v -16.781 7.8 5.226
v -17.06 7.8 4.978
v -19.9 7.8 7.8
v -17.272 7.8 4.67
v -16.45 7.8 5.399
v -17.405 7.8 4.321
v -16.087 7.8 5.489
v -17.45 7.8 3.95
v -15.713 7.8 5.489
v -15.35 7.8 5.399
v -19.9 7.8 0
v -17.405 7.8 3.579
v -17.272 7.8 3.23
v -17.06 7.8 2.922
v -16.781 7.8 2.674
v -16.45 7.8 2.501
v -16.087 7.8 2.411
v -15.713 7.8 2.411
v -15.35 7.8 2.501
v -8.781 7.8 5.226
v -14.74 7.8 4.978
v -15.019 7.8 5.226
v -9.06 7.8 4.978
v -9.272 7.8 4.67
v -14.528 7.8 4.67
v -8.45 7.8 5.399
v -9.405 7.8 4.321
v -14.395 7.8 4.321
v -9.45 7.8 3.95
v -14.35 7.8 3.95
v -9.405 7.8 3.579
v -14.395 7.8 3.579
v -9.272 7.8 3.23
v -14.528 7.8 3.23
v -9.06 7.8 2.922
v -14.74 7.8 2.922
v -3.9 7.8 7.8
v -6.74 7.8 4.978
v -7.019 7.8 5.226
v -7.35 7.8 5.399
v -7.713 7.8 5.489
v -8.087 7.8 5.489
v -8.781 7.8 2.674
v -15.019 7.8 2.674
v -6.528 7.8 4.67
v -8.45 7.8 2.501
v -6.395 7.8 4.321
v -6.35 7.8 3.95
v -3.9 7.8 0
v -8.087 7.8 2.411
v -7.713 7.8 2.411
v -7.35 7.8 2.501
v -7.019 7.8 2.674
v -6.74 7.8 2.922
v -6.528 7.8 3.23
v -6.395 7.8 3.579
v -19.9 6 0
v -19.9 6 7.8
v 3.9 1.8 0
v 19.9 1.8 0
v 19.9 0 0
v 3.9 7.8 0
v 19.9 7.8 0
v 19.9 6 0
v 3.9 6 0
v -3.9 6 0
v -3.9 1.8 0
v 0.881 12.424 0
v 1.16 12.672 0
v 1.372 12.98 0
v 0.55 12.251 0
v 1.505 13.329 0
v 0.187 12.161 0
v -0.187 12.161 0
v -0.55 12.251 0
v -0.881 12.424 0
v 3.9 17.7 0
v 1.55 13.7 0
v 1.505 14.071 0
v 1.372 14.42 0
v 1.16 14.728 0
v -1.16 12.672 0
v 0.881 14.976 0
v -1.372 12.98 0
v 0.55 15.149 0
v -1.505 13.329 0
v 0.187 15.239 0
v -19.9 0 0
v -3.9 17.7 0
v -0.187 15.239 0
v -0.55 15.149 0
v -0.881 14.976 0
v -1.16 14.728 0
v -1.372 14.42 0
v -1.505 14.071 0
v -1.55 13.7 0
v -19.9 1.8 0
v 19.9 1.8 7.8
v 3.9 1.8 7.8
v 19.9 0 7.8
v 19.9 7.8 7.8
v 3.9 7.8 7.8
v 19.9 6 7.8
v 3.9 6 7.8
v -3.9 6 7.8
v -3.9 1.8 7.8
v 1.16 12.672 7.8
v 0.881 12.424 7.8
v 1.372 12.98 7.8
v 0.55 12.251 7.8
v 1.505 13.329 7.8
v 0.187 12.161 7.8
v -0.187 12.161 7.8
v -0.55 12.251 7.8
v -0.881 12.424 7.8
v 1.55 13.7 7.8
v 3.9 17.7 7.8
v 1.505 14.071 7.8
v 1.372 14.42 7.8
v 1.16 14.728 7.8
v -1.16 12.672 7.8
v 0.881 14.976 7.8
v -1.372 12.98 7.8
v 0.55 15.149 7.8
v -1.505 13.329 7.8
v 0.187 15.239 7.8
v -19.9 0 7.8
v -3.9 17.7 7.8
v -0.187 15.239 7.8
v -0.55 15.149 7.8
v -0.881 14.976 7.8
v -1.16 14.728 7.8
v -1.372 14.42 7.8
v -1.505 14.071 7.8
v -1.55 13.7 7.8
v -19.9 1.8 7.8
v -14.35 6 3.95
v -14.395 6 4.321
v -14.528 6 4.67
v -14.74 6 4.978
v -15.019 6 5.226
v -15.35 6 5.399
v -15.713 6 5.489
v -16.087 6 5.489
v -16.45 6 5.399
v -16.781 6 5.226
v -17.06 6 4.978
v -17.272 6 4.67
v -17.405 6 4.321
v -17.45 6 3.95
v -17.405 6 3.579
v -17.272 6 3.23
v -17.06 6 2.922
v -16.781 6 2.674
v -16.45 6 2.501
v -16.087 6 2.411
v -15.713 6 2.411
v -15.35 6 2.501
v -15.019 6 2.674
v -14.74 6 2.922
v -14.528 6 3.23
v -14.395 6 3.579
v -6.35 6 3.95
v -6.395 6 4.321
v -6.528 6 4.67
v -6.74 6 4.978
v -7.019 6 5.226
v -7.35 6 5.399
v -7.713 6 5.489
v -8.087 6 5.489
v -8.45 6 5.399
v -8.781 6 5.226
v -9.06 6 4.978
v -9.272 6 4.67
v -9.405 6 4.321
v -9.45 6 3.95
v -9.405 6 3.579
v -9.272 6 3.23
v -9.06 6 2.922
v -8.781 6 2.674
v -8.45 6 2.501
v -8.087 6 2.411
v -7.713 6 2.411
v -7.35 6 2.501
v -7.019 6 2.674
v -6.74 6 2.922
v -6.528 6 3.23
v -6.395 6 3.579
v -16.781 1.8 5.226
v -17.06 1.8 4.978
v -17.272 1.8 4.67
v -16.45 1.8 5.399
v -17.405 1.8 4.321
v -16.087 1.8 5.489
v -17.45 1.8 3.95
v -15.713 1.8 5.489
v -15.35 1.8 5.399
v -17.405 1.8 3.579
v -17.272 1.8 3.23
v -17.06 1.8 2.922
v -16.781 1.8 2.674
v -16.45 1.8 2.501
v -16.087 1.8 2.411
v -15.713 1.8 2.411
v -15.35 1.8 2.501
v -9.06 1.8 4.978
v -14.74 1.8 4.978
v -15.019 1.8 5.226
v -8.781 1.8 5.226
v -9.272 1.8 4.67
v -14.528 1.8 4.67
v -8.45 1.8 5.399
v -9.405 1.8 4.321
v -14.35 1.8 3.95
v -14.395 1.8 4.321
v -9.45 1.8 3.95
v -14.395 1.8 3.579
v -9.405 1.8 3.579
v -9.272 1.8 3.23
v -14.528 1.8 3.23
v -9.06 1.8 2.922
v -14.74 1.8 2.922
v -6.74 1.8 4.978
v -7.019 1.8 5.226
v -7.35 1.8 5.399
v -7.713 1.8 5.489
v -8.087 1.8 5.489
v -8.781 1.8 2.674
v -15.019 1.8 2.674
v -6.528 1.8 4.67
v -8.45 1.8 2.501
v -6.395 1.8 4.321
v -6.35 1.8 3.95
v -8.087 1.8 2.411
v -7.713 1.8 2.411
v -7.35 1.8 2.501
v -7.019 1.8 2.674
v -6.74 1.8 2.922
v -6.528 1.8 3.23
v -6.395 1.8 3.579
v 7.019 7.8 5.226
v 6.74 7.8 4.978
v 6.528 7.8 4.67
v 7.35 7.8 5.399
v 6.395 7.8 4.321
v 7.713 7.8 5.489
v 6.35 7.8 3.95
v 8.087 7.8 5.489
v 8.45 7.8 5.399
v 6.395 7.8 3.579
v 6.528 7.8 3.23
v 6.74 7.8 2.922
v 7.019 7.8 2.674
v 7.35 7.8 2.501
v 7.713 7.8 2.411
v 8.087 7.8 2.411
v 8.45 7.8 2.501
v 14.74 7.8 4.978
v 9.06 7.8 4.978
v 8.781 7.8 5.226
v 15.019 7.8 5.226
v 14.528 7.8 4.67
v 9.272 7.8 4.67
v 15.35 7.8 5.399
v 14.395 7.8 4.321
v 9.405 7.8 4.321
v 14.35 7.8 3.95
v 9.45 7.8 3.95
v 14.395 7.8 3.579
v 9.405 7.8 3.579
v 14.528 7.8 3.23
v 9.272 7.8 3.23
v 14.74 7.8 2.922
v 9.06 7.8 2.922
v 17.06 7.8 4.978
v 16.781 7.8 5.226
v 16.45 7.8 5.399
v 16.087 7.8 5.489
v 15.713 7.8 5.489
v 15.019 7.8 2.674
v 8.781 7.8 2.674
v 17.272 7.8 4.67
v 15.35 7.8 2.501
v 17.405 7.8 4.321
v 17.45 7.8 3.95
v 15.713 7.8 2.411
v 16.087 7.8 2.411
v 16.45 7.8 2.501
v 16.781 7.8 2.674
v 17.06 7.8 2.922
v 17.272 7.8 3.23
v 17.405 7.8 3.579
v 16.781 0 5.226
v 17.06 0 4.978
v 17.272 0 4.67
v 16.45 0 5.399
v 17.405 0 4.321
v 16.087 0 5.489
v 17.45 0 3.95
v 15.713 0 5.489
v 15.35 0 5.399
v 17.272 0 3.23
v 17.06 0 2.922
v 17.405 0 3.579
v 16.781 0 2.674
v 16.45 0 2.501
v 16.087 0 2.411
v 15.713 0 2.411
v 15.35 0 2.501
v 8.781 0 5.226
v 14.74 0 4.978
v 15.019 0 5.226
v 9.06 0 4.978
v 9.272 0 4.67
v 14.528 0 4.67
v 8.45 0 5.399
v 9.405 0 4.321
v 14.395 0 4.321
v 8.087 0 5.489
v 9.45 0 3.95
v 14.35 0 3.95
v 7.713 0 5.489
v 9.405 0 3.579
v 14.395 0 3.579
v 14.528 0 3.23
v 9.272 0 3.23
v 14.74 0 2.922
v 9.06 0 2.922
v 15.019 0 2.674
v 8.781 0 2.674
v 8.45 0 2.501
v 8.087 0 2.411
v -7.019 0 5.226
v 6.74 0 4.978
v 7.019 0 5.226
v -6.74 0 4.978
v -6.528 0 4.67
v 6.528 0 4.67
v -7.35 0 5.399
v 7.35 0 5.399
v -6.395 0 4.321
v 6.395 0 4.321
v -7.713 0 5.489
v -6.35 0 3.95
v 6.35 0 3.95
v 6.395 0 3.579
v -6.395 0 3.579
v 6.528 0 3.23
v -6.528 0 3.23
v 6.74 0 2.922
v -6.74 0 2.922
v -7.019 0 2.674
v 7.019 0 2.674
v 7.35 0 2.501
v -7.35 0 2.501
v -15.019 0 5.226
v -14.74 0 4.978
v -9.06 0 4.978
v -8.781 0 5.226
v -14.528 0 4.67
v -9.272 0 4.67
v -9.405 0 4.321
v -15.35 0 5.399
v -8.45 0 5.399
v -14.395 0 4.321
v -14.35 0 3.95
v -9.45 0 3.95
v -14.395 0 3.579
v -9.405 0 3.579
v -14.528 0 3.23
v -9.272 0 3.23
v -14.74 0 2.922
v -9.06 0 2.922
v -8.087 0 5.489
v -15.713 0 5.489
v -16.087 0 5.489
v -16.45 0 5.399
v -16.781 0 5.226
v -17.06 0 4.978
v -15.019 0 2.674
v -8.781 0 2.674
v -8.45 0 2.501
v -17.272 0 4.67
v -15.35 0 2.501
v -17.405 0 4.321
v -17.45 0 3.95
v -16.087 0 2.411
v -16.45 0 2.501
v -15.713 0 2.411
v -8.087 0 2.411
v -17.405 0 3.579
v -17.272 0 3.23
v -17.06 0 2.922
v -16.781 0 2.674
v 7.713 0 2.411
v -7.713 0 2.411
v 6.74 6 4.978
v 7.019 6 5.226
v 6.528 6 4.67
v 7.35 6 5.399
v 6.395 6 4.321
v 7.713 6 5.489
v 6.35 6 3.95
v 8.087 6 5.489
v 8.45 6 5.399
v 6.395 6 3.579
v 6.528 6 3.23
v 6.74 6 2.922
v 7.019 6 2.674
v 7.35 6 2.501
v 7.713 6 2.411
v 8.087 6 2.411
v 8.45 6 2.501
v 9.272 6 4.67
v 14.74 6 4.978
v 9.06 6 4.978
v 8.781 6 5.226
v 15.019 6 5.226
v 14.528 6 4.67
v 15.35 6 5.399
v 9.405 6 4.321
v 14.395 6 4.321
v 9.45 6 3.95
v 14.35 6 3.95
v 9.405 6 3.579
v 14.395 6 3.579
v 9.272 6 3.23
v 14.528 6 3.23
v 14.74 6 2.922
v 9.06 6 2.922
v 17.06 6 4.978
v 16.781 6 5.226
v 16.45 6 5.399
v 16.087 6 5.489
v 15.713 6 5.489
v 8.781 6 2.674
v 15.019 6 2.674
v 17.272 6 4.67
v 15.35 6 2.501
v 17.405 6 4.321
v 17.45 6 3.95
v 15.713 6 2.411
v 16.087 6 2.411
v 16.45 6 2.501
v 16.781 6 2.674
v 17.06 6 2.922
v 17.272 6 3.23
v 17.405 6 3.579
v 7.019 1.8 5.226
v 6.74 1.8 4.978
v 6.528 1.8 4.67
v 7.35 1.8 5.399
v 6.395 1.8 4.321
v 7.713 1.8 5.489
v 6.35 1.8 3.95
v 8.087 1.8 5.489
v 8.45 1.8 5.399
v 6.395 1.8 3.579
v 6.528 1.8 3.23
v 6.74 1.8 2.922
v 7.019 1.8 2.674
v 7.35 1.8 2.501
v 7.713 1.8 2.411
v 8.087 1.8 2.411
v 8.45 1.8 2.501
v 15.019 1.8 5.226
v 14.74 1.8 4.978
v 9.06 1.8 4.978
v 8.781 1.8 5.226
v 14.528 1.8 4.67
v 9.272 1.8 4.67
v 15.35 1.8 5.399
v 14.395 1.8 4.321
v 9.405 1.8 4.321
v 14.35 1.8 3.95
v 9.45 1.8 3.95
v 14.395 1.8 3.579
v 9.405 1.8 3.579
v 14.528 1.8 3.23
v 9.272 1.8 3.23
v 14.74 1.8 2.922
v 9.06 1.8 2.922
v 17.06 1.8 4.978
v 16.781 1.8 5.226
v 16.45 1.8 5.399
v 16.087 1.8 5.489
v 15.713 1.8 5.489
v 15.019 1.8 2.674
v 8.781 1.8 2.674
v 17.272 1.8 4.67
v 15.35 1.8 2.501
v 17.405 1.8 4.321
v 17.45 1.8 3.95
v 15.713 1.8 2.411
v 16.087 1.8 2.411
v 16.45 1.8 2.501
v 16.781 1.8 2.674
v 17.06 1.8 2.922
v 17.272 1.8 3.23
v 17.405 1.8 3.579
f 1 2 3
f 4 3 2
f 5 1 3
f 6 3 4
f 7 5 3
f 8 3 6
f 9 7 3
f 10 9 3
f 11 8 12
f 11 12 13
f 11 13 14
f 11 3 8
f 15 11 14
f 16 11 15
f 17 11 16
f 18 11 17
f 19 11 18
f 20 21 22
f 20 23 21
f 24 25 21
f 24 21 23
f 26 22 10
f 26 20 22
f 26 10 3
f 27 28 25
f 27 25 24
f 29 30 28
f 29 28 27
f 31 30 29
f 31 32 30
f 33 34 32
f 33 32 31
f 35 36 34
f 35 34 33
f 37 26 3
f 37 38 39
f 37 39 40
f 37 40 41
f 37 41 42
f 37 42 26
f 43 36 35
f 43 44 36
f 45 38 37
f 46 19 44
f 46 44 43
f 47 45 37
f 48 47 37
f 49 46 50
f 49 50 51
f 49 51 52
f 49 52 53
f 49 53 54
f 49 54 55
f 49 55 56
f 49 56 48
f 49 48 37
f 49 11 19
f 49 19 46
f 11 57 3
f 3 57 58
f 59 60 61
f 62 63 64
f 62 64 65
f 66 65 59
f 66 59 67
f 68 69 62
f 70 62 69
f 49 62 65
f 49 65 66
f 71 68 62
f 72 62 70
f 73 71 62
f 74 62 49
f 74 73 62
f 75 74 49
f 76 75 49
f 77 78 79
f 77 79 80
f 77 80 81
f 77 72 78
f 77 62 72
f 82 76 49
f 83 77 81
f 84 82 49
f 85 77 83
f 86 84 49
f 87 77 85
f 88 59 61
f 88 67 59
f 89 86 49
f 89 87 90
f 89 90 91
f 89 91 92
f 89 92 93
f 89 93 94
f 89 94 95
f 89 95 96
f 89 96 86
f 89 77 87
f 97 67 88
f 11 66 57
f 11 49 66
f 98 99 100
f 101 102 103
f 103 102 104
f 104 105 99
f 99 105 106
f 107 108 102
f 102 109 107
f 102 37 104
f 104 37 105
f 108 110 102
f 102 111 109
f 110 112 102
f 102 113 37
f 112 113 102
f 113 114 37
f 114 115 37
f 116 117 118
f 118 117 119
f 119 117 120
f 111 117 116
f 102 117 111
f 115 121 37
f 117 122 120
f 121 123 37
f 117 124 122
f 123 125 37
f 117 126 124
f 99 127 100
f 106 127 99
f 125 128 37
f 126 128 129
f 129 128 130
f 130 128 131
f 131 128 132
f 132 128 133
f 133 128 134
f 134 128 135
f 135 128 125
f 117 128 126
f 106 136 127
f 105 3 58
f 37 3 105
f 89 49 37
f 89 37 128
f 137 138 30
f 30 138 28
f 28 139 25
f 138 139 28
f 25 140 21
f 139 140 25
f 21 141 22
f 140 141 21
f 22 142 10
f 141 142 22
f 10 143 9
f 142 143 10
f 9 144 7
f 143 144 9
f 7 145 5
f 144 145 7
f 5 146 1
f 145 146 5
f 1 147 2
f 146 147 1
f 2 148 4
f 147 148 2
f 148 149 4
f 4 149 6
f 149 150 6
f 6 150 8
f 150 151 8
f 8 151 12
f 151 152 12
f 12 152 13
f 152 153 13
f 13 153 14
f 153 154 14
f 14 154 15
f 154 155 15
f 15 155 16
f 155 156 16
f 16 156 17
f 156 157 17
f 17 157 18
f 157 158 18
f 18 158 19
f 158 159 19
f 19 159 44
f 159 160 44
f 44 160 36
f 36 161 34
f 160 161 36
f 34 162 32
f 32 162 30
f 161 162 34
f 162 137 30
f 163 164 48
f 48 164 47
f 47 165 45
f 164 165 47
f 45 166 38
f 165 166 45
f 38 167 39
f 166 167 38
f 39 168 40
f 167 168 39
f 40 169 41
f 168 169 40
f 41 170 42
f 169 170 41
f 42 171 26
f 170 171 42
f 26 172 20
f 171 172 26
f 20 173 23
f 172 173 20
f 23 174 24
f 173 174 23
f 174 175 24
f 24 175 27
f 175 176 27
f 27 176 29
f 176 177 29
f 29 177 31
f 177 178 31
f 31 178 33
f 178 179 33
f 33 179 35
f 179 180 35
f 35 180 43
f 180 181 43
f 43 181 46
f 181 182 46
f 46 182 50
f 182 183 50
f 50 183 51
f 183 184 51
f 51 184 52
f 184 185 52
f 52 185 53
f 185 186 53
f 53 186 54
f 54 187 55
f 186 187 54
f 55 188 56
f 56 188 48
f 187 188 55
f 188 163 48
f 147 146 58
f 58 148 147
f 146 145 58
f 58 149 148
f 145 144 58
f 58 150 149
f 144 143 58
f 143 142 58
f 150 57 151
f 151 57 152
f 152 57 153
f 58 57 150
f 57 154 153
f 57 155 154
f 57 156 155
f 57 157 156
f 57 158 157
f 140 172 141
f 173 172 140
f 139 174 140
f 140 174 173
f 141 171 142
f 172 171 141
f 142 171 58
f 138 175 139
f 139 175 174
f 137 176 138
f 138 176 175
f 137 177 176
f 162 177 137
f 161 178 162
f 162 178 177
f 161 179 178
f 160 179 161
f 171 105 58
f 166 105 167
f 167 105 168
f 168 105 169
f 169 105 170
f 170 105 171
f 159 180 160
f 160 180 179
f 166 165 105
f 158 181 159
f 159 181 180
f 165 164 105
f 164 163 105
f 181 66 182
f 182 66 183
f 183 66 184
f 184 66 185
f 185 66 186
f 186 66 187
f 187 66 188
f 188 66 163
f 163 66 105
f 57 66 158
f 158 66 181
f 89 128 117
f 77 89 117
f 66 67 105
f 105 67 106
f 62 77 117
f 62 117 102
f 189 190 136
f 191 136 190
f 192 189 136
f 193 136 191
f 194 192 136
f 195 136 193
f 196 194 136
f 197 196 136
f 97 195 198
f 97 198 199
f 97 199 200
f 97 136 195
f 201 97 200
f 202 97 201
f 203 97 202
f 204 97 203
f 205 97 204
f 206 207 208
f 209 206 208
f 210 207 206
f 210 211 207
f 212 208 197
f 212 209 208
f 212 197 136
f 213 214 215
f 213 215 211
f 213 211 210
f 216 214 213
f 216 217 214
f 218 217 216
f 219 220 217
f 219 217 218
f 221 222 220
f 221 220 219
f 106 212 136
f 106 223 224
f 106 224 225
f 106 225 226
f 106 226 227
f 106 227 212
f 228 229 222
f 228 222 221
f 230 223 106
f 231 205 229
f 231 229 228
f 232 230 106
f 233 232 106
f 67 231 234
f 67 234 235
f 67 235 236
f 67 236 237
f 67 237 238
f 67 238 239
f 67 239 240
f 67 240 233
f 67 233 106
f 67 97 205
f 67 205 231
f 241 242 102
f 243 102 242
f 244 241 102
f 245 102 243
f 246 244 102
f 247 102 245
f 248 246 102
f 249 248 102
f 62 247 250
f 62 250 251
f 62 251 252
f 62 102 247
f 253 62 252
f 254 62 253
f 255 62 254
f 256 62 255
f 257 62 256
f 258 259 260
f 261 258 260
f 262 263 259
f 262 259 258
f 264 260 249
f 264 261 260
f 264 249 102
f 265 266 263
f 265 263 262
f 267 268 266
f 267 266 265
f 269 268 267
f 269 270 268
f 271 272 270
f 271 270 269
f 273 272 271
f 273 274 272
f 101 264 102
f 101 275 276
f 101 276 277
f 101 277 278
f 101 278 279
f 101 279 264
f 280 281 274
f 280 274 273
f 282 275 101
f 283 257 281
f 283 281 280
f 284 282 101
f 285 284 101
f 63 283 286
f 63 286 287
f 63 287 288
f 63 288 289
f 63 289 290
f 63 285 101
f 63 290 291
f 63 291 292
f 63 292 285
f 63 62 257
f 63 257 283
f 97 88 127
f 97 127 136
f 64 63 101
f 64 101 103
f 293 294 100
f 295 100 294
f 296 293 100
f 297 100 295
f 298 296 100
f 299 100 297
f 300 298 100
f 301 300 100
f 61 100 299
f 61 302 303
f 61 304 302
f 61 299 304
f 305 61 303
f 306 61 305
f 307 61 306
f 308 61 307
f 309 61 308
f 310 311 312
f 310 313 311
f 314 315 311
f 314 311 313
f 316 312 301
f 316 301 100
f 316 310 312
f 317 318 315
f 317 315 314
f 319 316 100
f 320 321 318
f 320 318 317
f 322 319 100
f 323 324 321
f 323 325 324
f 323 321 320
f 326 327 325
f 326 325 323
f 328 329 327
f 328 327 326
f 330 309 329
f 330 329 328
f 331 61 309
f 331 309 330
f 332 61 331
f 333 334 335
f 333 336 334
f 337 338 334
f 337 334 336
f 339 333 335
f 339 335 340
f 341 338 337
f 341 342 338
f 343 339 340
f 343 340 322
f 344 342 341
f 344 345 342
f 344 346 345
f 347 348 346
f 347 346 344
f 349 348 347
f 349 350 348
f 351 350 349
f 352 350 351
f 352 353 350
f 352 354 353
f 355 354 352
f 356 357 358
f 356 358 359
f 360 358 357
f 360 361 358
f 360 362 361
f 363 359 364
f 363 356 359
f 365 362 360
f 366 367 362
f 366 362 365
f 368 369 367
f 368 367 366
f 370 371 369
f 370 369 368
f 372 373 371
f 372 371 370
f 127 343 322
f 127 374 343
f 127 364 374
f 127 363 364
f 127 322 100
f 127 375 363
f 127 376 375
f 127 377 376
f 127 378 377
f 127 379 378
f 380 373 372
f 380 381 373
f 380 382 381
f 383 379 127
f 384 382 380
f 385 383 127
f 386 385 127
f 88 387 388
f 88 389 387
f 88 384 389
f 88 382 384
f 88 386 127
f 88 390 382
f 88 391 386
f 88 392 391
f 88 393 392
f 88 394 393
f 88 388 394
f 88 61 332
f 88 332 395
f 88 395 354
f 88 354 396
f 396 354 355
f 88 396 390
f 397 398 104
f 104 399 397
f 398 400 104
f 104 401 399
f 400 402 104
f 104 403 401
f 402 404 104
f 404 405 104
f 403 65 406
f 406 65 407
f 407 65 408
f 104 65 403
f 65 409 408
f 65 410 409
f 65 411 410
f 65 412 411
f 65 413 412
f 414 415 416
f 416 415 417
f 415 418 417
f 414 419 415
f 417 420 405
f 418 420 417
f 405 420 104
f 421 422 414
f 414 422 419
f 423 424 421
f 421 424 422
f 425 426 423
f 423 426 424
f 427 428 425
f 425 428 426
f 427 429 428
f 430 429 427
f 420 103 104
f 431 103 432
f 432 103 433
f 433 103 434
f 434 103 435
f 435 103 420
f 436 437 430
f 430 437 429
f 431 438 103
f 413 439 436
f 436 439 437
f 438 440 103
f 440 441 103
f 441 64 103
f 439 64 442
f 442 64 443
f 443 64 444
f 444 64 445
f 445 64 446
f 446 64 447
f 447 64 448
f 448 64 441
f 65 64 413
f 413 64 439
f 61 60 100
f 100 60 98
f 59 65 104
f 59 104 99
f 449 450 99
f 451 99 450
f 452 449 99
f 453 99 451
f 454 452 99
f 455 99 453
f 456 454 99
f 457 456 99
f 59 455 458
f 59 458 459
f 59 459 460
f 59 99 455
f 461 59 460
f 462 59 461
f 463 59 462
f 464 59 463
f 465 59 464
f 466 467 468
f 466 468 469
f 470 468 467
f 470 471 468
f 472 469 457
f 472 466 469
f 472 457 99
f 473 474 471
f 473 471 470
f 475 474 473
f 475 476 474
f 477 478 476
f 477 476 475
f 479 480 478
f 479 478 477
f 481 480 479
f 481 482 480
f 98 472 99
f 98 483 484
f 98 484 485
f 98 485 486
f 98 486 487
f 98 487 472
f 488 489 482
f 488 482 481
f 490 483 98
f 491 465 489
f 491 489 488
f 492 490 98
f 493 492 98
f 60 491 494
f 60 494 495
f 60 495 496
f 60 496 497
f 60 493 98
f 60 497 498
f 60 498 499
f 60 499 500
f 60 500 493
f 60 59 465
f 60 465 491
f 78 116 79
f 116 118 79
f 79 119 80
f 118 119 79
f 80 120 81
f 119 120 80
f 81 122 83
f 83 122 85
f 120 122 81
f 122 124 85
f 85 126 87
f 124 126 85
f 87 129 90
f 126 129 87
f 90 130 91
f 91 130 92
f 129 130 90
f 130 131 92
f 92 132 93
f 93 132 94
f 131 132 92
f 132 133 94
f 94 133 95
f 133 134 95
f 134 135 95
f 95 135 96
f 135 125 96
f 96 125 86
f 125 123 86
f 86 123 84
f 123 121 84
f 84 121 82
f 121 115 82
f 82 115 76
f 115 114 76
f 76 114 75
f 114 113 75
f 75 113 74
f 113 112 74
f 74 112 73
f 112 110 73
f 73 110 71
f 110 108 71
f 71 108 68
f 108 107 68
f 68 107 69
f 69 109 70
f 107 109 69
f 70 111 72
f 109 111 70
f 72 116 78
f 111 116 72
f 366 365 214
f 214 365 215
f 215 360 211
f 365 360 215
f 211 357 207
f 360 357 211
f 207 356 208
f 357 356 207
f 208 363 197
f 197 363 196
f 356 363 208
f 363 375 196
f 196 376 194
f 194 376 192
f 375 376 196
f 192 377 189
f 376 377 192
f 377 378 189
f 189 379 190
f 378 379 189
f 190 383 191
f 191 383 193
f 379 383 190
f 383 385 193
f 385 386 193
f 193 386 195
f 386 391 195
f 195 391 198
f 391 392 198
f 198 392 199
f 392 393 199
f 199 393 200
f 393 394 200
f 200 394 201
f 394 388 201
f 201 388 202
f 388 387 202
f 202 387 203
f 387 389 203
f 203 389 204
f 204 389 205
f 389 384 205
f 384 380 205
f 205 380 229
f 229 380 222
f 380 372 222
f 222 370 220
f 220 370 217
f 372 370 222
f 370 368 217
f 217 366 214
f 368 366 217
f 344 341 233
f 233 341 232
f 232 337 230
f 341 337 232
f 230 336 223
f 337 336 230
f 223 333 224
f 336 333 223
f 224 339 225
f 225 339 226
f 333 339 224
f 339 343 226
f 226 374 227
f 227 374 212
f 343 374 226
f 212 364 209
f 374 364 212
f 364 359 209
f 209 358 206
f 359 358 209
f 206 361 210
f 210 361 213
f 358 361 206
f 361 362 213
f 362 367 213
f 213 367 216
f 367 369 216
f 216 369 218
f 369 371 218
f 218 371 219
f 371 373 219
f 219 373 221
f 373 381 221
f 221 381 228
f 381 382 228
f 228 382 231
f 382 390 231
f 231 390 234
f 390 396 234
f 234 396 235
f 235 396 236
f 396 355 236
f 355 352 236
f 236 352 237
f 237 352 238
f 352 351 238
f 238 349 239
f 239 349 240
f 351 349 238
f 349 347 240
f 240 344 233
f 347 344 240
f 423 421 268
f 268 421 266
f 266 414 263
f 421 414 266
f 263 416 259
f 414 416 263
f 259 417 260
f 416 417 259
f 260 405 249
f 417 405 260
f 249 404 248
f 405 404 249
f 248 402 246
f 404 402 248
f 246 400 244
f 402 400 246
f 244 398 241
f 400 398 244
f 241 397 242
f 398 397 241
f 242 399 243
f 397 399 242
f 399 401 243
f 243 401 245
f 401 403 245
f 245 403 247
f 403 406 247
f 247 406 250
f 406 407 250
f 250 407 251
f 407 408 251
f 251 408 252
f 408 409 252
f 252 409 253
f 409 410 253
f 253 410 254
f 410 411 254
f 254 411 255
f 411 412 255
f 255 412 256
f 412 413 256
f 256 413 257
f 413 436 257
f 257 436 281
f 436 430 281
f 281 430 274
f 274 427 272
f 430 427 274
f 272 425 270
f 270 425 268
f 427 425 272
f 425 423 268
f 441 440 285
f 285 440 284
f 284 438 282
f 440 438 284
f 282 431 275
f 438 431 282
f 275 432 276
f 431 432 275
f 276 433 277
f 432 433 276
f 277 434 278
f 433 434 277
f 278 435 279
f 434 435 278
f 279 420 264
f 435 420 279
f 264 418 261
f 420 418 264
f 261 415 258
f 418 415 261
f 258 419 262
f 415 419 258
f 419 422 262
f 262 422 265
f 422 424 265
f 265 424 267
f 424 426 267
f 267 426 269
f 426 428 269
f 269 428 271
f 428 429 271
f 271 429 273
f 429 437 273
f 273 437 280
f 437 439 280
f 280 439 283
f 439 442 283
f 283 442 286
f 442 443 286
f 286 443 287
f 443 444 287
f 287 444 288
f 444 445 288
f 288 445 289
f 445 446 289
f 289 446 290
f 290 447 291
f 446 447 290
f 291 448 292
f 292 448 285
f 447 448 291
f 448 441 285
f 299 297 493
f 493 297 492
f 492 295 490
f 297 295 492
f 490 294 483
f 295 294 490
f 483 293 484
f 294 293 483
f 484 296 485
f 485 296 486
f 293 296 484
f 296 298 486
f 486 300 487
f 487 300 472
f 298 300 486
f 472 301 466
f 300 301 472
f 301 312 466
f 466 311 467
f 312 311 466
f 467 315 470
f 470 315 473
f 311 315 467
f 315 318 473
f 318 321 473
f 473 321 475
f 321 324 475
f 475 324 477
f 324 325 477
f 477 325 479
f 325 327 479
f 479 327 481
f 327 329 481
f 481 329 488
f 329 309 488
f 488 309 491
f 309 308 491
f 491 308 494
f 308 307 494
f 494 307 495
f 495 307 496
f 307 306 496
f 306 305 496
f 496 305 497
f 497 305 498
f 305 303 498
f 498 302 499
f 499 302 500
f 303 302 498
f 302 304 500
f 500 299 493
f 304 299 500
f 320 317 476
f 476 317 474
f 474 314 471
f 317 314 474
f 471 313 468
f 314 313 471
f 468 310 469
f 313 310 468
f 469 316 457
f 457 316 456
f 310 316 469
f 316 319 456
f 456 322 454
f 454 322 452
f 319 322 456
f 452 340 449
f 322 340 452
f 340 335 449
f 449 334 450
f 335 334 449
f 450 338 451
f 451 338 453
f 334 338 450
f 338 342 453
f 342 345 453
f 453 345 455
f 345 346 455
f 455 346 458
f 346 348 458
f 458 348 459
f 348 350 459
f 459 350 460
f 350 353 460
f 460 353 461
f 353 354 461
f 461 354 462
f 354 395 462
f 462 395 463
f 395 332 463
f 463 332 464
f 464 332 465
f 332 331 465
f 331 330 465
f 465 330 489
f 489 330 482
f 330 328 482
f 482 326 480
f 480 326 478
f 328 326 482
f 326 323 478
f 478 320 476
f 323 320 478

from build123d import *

# Parameters (mm, degrees)
PAD_DEPTH       = 7.8
SKETCH001_R     = 1.55
POCKET_DEPTH    = 17.701
SKETCH002_R     = 1.55
POCKET001_DEPTH = 7.801


with BuildPart() as part:
    # Sketch → Pad (new body)
    with BuildSketch(Plane.XY):
        Polygon((-3.9, 17.7), (3.9, 17.7), (3.9, 7.8), (19.9, 7.8), (19.9, 6), (3.9, 6), (3.9, 1.8), (19.9, 1.8), (19.9, 0), (-19.9, 0), (-19.9, 1.8), (-3.9, 1.8), (-3.9, 6), (-19.9, 6), (-19.9, 7.8), (-3.9, 7.8), align=None)
    extrude(amount=PAD_DEPTH)

    # Sketch001 (on Face11 of Pad) → Pocket (cut, through all)
    with BuildSketch(Plane.XZ):
        with Locations((-15.9, 3.95)):
            Circle(SKETCH001_R)
        with Locations((-7.9, 3.95)):
            Circle(SKETCH001_R)
        with Locations((7.9, 3.95)):
            Circle(SKETCH001_R)
        with Locations((15.9, 3.95)):
            Circle(SKETCH001_R)
    extrude(amount=-POCKET_DEPTH, mode=Mode.SUBTRACT)

    # Sketch002 (on Face4 of Pocket) → Pocket001 (cut, through all)
    with BuildSketch(Plane.XY.offset(7.8)):
        with Locations((0, 13.7)):
            Circle(SKETCH002_R)
    extrude(amount=-POCKET001_DEPTH, mode=Mode.SUBTRACT)


solid = part.part
